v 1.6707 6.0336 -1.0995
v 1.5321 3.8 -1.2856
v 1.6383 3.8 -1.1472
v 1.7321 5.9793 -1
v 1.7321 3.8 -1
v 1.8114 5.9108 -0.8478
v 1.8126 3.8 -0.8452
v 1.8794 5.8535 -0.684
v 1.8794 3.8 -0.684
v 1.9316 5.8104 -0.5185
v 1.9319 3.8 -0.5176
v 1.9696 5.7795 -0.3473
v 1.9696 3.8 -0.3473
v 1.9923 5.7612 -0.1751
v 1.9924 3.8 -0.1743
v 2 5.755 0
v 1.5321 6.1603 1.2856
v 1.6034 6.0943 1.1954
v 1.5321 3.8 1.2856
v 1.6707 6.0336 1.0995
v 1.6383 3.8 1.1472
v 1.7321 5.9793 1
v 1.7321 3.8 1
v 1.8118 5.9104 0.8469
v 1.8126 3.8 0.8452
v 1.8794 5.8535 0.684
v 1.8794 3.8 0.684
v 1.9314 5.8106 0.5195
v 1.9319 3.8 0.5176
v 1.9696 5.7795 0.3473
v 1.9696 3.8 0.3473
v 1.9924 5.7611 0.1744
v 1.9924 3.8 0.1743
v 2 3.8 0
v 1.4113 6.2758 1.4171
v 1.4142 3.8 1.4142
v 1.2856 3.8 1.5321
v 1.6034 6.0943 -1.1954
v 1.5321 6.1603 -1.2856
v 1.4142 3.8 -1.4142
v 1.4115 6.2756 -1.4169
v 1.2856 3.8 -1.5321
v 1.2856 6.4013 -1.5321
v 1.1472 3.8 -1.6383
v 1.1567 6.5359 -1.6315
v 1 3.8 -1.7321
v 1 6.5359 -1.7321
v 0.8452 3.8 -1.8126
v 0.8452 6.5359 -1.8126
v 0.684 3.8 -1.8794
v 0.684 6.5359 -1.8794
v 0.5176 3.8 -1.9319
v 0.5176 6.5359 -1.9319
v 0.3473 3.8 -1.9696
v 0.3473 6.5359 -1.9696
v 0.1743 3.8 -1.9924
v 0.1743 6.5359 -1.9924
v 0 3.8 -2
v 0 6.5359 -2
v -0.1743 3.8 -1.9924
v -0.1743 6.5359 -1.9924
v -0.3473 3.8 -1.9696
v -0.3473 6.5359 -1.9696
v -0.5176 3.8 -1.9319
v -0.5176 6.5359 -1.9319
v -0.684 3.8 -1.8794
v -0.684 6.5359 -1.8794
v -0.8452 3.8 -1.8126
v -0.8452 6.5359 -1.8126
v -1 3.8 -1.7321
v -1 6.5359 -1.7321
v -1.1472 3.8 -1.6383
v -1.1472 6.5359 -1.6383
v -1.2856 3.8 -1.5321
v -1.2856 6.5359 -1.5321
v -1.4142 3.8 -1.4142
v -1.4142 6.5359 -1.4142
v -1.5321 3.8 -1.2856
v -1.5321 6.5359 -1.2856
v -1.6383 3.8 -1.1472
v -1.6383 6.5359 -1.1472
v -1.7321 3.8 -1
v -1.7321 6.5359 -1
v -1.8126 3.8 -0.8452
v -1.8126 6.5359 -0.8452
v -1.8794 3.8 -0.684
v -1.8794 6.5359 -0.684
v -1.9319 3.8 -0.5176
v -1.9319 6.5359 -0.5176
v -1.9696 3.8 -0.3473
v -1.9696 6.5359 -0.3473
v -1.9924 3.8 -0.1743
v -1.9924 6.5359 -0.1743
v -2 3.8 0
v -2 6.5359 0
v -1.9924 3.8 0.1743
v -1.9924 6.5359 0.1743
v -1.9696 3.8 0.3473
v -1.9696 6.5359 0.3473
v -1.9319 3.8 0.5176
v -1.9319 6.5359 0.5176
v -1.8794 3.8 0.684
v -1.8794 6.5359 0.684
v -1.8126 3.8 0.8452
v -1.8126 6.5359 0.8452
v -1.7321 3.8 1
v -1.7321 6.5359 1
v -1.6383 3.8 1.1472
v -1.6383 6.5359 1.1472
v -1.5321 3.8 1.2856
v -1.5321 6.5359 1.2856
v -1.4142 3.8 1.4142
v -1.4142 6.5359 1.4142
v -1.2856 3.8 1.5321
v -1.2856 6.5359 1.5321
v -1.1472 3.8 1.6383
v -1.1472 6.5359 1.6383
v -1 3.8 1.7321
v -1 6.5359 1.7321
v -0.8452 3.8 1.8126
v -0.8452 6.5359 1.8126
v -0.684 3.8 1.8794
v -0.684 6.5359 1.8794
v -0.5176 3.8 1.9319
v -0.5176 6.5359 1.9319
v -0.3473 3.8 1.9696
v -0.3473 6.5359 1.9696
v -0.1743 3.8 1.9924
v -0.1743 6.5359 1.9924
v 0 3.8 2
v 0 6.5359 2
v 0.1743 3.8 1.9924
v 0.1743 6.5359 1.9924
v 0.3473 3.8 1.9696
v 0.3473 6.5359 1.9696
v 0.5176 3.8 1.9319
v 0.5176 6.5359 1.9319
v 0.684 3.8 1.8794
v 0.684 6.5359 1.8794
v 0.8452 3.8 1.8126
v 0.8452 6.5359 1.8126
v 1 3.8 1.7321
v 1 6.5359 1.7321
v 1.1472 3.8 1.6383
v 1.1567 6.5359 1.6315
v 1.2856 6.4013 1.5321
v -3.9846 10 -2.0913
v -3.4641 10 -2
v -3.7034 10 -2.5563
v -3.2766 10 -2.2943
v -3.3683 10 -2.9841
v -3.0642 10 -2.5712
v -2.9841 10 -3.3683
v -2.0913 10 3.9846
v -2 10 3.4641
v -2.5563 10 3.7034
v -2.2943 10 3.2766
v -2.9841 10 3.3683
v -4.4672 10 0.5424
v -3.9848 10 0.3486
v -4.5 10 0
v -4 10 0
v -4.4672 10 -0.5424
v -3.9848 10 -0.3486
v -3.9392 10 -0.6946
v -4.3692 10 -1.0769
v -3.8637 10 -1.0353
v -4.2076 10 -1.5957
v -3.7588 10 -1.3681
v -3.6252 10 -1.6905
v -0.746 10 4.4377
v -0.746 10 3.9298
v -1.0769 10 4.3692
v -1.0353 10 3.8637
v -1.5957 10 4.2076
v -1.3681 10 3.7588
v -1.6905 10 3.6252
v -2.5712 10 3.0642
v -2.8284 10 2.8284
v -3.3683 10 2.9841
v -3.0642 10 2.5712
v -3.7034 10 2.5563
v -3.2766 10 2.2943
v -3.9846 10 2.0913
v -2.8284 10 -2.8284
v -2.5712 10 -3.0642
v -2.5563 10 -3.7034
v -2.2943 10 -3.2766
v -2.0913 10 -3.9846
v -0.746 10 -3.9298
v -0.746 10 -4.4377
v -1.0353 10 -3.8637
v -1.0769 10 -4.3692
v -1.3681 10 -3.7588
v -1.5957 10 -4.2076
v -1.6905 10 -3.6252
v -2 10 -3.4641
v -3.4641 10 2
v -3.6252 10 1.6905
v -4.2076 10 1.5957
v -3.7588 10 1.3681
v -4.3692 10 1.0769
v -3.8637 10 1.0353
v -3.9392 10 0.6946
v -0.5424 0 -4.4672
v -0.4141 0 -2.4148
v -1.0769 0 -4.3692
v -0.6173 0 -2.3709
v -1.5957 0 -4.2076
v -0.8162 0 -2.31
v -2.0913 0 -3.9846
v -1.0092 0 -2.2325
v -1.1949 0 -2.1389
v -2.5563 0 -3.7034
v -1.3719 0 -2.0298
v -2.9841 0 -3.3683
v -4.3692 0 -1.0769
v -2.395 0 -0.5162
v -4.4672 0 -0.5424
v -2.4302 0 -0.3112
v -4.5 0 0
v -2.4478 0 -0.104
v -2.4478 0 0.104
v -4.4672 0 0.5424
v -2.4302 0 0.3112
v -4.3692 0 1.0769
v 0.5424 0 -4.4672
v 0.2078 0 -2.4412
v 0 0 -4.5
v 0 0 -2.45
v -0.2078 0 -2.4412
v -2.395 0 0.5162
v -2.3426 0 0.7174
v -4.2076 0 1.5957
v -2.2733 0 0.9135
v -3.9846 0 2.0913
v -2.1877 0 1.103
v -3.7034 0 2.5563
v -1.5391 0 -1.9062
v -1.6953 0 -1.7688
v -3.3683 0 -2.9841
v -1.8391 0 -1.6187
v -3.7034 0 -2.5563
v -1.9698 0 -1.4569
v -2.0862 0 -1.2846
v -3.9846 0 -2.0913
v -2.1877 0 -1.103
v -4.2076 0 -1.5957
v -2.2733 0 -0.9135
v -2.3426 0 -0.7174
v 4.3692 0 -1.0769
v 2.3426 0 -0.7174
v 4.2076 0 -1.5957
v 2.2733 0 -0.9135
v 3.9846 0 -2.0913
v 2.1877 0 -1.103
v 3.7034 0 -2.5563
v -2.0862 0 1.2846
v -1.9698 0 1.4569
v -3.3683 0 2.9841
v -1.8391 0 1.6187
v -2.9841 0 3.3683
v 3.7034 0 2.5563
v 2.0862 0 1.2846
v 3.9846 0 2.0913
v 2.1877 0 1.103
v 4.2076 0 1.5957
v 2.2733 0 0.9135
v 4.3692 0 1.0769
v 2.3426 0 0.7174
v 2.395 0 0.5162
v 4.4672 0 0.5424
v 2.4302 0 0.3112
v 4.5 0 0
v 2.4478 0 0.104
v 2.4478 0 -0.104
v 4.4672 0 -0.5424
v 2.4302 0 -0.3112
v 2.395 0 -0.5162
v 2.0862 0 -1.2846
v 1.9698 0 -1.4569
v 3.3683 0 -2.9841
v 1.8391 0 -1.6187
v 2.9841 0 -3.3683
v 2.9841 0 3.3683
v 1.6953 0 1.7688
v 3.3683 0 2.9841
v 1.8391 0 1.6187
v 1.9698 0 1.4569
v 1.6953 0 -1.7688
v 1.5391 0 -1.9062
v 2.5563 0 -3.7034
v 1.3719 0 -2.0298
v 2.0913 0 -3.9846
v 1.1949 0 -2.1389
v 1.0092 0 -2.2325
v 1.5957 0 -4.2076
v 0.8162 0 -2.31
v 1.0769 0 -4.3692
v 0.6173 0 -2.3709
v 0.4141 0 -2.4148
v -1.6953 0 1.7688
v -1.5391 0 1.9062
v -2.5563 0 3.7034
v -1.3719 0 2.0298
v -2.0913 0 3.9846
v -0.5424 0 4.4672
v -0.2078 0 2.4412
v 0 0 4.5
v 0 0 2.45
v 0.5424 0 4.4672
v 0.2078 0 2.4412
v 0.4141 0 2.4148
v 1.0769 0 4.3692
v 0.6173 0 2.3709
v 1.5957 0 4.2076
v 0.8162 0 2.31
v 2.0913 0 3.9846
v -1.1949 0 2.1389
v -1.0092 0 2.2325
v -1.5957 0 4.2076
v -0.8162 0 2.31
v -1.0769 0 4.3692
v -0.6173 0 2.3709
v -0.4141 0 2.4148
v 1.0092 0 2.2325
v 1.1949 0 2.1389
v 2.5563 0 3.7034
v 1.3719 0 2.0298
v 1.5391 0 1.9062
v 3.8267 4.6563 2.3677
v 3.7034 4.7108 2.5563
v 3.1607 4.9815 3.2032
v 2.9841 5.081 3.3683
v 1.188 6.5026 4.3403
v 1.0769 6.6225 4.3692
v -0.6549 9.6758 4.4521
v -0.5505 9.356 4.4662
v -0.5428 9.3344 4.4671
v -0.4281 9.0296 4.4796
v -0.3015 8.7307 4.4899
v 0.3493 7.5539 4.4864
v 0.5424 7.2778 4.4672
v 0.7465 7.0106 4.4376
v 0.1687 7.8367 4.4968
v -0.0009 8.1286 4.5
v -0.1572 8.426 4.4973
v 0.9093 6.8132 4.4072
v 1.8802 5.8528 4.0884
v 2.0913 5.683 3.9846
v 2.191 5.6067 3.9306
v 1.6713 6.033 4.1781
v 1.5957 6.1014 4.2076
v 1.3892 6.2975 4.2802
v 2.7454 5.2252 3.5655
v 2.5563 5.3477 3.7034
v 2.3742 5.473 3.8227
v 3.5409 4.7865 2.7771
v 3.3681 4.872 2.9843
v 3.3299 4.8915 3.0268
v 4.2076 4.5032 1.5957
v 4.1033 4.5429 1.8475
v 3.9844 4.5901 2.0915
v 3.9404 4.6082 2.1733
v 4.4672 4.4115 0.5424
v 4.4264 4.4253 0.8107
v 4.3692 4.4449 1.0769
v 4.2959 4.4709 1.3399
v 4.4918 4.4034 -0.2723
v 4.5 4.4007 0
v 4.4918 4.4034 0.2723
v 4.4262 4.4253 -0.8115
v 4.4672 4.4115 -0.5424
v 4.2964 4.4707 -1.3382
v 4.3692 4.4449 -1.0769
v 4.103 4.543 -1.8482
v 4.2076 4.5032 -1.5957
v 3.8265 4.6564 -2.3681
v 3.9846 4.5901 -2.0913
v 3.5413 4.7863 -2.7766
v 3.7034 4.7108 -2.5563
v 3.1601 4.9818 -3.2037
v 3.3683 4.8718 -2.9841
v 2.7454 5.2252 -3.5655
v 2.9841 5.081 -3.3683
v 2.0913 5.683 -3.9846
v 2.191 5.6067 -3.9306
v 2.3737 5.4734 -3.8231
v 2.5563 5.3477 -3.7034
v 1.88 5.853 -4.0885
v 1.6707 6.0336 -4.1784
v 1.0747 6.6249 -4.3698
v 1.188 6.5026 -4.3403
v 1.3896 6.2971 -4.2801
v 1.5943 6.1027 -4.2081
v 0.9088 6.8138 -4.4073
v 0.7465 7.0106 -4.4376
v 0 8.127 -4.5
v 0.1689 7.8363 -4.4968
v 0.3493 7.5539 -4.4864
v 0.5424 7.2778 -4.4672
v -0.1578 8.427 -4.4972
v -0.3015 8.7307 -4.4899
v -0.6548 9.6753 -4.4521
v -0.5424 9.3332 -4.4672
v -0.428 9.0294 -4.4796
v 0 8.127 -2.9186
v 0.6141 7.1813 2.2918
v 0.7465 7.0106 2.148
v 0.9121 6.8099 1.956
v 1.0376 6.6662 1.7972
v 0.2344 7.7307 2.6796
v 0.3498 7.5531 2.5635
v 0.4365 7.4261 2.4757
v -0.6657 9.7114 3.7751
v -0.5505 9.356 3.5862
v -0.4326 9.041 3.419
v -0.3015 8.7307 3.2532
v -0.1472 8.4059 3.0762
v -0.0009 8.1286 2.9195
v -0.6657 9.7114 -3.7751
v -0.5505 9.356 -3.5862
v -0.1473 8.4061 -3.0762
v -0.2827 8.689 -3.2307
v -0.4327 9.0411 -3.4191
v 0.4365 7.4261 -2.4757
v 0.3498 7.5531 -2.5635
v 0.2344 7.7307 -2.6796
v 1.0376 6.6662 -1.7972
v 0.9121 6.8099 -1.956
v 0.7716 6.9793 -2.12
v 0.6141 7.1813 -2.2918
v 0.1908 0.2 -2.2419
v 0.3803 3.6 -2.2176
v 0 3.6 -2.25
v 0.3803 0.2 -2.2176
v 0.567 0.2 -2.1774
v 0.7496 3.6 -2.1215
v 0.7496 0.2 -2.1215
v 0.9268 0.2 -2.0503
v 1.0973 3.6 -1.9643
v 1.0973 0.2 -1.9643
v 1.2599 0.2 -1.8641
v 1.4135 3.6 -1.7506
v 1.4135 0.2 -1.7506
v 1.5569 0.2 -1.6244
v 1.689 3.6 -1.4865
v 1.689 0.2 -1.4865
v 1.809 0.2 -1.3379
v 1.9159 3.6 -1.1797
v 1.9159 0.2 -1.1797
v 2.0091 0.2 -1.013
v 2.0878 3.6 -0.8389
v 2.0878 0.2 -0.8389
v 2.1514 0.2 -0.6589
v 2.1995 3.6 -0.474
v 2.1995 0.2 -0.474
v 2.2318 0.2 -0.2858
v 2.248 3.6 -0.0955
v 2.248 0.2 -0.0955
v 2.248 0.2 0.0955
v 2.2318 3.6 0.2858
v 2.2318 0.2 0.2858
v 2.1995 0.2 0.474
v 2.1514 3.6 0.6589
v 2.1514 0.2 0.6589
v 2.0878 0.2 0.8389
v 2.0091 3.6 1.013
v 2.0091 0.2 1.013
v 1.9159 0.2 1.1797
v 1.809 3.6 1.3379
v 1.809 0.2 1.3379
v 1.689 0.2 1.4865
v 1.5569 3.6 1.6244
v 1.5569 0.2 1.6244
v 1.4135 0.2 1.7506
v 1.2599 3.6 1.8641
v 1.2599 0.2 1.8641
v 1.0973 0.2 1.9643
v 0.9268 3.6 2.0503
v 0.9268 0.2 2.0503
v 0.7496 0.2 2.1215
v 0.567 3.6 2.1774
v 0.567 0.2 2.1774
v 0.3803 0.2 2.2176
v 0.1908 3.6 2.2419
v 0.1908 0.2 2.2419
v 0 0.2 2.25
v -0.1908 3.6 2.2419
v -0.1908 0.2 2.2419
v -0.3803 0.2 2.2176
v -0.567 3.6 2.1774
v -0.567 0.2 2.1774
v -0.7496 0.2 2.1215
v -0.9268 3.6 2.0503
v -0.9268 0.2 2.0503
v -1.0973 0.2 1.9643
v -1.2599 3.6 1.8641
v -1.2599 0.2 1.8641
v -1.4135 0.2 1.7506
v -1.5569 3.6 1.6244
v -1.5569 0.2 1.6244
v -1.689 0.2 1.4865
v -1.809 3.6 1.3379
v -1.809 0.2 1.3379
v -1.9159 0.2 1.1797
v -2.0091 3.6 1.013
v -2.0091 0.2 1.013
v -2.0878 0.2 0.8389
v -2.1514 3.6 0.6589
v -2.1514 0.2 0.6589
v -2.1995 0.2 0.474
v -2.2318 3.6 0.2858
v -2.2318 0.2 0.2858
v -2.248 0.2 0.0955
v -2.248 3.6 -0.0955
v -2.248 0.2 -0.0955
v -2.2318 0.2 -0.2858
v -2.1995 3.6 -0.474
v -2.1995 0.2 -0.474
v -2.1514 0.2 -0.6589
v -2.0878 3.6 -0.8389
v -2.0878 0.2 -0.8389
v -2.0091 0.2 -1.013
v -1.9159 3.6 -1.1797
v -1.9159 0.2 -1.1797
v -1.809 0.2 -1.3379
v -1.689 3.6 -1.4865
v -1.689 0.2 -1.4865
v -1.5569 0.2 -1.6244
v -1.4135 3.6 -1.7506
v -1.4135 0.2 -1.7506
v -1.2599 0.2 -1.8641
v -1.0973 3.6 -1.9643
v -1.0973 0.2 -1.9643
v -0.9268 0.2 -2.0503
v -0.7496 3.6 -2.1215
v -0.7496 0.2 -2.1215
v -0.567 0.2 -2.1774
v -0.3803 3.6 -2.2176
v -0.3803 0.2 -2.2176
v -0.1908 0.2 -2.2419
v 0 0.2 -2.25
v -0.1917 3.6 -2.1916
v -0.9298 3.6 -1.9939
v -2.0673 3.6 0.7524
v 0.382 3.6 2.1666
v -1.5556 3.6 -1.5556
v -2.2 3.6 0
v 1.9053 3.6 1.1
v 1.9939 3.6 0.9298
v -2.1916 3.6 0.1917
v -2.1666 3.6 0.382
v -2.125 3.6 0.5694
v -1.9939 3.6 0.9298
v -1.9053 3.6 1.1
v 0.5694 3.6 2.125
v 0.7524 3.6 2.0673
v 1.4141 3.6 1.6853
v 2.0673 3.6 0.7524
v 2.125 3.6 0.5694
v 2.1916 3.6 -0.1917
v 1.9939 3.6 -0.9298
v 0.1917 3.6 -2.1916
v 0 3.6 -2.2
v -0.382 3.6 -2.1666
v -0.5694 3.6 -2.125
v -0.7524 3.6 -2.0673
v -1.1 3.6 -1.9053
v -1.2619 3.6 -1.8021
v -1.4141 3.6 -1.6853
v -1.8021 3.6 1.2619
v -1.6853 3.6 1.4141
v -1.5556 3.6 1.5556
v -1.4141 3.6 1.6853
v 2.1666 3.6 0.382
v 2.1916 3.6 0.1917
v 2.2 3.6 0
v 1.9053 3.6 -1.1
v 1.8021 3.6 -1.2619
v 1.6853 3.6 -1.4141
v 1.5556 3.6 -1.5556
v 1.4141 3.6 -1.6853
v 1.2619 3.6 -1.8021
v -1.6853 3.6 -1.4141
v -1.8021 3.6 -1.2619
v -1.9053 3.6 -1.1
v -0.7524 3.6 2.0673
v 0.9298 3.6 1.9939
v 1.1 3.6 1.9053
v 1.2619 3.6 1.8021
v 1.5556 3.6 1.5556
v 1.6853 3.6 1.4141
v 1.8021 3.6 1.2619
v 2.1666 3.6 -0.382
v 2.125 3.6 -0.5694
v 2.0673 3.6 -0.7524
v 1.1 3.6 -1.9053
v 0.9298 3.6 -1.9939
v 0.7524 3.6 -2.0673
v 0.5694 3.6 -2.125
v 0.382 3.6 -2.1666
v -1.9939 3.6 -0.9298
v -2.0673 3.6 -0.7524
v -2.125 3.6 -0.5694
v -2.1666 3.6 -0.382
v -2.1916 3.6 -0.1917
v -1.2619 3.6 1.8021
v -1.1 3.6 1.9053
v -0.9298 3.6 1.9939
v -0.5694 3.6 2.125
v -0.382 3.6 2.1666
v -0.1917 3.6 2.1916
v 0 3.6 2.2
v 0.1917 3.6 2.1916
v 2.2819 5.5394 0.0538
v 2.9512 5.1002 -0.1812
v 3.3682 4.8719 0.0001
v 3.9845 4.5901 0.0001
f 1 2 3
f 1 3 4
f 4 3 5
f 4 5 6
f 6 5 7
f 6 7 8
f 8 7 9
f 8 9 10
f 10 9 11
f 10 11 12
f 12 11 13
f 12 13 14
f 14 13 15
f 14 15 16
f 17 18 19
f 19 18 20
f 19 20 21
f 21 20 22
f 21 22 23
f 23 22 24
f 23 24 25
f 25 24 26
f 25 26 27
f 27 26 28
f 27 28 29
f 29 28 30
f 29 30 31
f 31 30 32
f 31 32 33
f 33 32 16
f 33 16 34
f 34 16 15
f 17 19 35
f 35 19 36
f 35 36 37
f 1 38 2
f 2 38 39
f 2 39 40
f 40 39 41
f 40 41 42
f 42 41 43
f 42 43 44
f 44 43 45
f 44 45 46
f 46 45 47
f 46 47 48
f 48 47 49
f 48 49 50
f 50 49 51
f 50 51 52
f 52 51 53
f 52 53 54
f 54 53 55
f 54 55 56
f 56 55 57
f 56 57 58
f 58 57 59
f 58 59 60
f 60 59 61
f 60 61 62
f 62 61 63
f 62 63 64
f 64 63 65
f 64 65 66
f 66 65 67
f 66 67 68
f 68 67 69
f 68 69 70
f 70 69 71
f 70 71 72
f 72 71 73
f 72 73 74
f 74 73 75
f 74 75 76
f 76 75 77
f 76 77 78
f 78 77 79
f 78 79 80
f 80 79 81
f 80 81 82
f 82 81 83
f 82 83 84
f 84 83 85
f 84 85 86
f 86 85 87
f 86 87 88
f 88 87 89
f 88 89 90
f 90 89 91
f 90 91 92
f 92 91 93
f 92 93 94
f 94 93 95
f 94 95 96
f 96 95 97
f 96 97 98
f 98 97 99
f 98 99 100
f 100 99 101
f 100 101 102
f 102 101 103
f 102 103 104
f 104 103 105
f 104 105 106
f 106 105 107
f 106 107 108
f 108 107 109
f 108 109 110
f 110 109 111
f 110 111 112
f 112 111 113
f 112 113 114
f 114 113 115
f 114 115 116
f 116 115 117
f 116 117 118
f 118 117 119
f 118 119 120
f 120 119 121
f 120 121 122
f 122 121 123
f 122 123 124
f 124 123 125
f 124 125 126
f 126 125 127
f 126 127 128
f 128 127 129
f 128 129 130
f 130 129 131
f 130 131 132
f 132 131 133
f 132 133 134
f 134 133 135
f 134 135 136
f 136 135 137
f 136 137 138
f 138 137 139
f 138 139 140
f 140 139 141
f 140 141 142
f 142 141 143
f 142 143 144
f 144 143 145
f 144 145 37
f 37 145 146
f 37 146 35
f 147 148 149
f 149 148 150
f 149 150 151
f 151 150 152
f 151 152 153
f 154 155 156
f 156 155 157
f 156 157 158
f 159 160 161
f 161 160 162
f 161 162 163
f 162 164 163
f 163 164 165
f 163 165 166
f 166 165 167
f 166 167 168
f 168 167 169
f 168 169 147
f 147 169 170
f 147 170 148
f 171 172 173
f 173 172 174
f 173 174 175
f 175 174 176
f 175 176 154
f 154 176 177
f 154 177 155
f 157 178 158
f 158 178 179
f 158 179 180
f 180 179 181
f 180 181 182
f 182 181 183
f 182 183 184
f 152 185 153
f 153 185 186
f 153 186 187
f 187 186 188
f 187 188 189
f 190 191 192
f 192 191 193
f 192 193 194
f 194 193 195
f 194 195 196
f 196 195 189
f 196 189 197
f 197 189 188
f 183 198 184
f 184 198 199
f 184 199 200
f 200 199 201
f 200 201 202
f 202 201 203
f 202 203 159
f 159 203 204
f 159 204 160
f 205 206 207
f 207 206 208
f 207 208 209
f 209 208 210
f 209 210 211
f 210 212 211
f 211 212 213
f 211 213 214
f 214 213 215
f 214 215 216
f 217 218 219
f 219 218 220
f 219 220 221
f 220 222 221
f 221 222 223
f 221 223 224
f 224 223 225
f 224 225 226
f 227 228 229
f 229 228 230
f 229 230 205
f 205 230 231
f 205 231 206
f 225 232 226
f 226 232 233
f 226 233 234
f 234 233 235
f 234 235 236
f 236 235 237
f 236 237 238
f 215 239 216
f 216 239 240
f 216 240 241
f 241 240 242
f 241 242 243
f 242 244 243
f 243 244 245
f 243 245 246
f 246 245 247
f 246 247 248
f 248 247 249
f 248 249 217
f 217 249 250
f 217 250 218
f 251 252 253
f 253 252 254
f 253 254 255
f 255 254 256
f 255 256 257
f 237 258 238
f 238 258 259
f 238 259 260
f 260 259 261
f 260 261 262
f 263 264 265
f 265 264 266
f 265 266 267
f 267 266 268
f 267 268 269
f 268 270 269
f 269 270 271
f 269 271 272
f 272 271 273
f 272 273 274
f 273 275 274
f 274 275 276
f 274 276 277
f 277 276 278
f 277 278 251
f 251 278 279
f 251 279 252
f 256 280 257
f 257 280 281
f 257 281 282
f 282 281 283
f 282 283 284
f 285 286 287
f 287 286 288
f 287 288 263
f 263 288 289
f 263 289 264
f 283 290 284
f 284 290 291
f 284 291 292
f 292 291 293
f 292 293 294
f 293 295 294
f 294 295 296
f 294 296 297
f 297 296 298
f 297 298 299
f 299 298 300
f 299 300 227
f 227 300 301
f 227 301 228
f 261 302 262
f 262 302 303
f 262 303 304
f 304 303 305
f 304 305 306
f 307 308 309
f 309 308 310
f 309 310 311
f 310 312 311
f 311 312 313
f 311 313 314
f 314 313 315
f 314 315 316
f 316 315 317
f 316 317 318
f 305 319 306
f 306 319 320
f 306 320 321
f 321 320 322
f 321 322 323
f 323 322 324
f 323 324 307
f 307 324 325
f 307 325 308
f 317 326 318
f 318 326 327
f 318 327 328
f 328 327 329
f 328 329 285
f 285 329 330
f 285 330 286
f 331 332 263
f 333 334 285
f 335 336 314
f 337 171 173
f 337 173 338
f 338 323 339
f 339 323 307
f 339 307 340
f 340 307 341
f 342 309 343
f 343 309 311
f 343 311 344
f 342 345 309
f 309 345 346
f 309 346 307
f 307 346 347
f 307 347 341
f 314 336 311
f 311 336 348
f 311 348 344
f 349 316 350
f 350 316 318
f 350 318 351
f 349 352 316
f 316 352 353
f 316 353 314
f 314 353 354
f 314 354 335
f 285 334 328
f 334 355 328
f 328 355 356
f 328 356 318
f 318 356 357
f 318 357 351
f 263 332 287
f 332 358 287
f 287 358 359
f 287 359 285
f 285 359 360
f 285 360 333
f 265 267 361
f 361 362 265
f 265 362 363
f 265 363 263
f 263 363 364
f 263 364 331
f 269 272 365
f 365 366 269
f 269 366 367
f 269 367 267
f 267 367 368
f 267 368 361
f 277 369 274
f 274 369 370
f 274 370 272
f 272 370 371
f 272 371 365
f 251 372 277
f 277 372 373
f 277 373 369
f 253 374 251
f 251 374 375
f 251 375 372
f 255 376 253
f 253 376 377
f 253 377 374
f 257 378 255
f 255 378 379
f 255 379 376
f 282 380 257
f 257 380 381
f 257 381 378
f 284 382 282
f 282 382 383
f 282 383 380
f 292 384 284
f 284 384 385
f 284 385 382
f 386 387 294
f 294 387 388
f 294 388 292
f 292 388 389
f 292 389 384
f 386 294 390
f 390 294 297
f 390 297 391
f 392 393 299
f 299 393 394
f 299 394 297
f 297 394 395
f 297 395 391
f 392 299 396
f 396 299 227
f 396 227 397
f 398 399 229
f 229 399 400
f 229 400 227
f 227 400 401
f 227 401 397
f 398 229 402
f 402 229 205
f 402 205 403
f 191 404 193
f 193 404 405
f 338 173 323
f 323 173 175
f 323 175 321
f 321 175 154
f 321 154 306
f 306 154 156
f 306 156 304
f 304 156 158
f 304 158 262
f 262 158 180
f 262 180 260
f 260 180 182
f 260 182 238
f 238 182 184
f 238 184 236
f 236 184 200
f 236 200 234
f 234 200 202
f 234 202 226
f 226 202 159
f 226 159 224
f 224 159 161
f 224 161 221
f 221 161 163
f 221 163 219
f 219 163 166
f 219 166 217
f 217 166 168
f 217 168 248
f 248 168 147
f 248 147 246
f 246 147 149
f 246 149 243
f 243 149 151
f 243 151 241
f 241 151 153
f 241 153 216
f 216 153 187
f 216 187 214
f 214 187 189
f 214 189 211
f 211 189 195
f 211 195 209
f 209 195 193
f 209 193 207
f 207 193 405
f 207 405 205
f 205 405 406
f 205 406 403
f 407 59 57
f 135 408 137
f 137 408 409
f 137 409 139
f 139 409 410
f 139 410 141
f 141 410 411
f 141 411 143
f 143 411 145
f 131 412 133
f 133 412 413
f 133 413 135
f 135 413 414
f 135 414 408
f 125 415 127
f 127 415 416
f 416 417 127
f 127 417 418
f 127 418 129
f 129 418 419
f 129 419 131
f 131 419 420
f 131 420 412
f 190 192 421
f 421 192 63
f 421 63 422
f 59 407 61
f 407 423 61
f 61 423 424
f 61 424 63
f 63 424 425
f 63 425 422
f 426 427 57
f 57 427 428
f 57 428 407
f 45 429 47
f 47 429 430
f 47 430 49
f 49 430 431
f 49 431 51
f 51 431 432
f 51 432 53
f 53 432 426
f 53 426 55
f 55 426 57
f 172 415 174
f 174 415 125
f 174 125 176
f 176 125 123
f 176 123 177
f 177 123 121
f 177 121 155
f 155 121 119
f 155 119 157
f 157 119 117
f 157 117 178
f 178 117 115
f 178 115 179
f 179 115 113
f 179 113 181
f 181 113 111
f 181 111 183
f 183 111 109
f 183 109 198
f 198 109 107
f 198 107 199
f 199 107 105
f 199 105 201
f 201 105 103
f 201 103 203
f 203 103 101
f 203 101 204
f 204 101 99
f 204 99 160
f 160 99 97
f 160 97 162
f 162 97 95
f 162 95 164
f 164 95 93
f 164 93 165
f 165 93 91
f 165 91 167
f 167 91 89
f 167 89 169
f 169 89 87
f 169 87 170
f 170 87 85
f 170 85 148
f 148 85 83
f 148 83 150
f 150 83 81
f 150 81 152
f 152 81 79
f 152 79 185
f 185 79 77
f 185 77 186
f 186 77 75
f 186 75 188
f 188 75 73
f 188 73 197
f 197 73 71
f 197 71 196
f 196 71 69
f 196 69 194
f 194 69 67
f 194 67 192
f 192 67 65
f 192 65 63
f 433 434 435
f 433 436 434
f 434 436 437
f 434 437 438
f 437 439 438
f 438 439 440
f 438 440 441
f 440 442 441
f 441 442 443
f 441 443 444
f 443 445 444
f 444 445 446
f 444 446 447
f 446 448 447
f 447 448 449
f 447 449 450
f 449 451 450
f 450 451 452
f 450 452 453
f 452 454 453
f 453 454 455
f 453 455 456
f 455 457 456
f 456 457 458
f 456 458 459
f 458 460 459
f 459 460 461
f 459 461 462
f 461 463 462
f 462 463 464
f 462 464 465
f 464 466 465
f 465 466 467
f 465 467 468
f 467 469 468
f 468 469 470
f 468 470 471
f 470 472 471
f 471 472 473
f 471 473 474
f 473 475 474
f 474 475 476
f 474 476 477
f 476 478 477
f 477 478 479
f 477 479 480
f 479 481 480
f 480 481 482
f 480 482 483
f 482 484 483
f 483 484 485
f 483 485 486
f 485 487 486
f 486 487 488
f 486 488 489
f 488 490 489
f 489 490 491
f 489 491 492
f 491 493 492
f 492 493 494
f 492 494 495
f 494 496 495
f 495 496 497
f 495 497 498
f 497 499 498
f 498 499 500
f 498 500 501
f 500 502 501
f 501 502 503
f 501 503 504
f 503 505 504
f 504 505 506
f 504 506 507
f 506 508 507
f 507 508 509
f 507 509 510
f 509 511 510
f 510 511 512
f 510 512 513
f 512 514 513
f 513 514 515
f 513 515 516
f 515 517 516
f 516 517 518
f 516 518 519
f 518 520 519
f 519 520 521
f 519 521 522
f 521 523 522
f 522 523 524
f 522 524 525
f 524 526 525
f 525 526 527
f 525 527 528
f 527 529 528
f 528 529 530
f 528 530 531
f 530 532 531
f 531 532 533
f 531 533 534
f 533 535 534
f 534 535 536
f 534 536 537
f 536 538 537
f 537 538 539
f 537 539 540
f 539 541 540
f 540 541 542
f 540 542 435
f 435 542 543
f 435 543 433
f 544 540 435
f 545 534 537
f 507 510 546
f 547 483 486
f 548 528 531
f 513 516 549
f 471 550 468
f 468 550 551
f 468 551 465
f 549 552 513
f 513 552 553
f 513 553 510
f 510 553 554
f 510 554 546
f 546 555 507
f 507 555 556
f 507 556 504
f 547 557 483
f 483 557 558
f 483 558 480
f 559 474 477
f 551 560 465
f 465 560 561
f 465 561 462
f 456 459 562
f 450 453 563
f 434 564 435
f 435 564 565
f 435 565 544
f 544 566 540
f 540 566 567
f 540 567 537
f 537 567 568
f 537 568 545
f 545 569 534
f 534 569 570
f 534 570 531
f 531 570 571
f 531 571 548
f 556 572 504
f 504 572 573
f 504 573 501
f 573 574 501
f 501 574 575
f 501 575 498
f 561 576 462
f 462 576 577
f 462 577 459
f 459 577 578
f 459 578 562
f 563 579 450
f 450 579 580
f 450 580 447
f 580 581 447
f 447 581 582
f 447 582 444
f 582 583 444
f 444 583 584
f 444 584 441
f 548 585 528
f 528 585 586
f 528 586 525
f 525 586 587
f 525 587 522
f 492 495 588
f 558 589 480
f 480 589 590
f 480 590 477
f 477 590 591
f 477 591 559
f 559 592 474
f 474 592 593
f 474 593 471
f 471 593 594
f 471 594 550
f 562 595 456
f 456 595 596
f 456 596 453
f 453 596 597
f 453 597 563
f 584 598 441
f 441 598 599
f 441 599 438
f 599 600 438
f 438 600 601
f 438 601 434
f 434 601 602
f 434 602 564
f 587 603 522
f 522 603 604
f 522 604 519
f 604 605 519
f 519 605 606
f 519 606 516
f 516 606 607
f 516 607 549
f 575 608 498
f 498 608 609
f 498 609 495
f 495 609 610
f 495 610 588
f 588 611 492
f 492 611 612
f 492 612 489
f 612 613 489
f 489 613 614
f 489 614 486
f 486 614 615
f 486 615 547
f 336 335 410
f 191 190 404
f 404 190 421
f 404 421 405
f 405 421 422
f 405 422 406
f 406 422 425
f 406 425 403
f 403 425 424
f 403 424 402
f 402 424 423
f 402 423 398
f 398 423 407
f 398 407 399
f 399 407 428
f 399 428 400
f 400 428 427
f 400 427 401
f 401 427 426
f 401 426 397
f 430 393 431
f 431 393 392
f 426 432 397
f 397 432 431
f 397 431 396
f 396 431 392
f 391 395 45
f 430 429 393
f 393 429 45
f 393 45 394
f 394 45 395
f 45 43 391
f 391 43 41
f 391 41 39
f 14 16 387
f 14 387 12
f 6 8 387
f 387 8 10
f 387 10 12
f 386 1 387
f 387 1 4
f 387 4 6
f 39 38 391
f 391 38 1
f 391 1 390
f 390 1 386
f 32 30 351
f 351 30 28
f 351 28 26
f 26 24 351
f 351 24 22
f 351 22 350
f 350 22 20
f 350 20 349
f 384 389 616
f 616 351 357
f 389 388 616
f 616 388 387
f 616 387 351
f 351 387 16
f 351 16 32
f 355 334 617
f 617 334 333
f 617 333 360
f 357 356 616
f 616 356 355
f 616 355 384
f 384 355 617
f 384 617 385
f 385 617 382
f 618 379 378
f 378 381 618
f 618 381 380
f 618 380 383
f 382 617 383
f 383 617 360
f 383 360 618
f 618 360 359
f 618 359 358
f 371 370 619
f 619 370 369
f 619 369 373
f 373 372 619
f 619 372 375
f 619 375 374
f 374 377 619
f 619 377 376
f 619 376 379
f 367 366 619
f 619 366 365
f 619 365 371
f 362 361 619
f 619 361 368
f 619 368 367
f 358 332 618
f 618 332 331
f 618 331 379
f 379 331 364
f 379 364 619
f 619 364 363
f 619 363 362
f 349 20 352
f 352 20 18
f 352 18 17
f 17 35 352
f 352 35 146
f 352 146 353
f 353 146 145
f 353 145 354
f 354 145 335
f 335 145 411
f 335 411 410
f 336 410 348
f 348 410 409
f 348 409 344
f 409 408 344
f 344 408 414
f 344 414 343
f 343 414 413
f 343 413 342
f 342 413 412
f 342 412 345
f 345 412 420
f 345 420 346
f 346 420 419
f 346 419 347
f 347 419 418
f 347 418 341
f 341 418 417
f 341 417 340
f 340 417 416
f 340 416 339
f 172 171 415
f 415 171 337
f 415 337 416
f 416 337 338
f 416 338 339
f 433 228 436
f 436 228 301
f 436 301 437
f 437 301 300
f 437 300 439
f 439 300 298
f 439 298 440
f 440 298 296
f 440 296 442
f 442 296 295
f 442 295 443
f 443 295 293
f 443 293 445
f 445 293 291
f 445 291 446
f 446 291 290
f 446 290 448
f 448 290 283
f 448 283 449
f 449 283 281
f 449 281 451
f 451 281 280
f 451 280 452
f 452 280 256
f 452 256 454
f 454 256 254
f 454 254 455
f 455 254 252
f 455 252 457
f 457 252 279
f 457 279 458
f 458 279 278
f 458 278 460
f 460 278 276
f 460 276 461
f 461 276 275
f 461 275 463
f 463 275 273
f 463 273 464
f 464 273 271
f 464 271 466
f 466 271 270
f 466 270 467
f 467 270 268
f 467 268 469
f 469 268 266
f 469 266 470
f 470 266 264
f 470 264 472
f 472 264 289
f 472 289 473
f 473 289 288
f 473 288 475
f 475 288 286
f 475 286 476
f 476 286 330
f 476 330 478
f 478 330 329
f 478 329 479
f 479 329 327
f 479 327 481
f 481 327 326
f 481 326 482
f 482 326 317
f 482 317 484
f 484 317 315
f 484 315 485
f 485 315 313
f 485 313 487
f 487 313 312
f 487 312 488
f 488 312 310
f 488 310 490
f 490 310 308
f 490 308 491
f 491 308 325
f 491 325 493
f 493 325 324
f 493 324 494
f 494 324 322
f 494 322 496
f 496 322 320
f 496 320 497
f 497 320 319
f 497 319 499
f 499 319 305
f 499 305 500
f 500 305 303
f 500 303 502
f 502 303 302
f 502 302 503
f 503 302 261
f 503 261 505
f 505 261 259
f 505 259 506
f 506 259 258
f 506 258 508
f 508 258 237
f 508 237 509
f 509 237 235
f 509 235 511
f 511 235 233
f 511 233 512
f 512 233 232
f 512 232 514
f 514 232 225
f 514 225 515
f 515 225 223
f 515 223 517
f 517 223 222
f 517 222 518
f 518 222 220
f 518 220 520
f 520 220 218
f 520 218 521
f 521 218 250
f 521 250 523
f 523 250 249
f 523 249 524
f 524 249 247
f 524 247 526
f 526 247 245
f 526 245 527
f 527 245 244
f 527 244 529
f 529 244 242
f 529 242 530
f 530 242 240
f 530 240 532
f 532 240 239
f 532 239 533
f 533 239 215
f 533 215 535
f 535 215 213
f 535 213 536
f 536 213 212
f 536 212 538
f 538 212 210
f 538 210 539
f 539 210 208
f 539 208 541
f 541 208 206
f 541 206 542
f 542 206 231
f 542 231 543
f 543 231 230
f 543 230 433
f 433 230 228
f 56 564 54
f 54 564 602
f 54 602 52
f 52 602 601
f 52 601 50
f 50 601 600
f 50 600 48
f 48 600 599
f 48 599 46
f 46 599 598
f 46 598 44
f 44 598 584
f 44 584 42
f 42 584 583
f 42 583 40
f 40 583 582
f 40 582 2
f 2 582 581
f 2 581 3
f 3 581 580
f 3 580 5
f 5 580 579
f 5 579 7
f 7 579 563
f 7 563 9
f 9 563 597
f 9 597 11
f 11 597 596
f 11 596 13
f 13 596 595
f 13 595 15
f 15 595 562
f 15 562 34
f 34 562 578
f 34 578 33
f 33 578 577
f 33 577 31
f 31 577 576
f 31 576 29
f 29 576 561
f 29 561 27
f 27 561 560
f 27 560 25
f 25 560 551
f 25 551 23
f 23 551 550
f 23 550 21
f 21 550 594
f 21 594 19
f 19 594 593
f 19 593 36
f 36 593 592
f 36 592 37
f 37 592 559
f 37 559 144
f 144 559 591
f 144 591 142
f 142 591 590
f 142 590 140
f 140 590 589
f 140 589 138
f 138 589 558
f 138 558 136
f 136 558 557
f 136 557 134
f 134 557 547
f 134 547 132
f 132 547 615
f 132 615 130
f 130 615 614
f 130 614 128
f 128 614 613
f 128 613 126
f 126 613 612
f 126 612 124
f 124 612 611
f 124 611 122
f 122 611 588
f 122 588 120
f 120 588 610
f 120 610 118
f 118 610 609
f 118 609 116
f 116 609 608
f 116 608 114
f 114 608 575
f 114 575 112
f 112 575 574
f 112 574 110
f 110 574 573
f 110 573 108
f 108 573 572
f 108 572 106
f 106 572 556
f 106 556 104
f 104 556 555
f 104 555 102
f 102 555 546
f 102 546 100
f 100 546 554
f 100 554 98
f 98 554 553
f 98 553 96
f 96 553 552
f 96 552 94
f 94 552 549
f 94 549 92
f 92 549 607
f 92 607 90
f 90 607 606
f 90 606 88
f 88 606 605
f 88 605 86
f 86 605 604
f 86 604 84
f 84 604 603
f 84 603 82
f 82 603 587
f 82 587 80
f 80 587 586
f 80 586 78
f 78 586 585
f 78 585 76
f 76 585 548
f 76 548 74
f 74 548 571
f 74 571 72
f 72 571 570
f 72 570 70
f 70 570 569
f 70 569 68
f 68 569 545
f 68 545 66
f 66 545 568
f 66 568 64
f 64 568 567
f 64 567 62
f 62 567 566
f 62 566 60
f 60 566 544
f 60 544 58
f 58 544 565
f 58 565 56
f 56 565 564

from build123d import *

# Parameters (mm, degrees)
SKETCH1_R               = 4.5
SKETCH1_R_2             = 2
BOSS_EXTRUDE1_DEPTH     = 10
CHAMFER1_SIZE           = 2
CHAMFER1_SIZE2          = 3.464101615
SKETCH2_R               = 2.25
CUT_EXTRUDE2_DEPTH      = 3.6
CUT_EXTRUDE3_DEPTH      = 12.853269591
CUT_EXTRUDE3_DEPTH_BACK = 12.853269591
SKETCH3_R               = 8
CHAMFER2_SIZE           = 0.2


with BuildPart() as part:
    # Sketch1 → Boss-Extrude1 (new body)
    with BuildSketch(Plane(origin=(0, 0, 0), x_dir=(1, 0, 0), z_dir=(0, 1, 0))):
        with Locations(Location((0, 0, 0), (0, 0, 270))):
            Circle(SKETCH1_R)
        with Locations(Location((0, 0, 0), (0, 0, 270))):
            Circle(SKETCH1_R_2, mode=Mode.SUBTRACT)
    extrude(amount=BOSS_EXTRUDE1_DEPTH)

    # Chamfer1
    chamfer1_edges = [part.edges().sort_by_distance(p)[0] for p in [
        (0, 10, -2),
    ]]
    chamfer1_side = [part.faces().sort_by_distance(p)[0] for p in [
        (0, 10, -4.372720779),
    ]]
    chamfer(chamfer1_edges, length=CHAMFER1_SIZE, length2=CHAMFER1_SIZE2, reference=chamfer1_side[0])

    # Sketch2 → Cut-Extrude2 (cut)
    with BuildSketch(Plane.XZ):
        with Locations(Location((0, 0, 0), (0, 0, 270))):
            Circle(SKETCH2_R)
    extrude(amount=-CUT_EXTRUDE2_DEPTH, mode=Mode.SUBTRACT)

    # Sketch3 → Cut-Extrude3 (cut, two sides: drawn at the far end of the back side and taken through both)
    with BuildSketch(Plane.XY.offset(-CUT_EXTRUDE3_DEPTH_BACK)):
        with Locations((7, 12)):
            Circle(SKETCH3_R)
    extrude(amount=CUT_EXTRUDE3_DEPTH + CUT_EXTRUDE3_DEPTH_BACK, mode=Mode.SUBTRACT)

    # Chamfer2
    chamfer2_edges = [part.edges().sort_by_distance(p)[0] for p in [
        (0, 3.6, -2),
        (0, 0, 2.25),
    ]]
    chamfer(chamfer2_edges, length=CHAMFER2_SIZE)


solid = part.part
